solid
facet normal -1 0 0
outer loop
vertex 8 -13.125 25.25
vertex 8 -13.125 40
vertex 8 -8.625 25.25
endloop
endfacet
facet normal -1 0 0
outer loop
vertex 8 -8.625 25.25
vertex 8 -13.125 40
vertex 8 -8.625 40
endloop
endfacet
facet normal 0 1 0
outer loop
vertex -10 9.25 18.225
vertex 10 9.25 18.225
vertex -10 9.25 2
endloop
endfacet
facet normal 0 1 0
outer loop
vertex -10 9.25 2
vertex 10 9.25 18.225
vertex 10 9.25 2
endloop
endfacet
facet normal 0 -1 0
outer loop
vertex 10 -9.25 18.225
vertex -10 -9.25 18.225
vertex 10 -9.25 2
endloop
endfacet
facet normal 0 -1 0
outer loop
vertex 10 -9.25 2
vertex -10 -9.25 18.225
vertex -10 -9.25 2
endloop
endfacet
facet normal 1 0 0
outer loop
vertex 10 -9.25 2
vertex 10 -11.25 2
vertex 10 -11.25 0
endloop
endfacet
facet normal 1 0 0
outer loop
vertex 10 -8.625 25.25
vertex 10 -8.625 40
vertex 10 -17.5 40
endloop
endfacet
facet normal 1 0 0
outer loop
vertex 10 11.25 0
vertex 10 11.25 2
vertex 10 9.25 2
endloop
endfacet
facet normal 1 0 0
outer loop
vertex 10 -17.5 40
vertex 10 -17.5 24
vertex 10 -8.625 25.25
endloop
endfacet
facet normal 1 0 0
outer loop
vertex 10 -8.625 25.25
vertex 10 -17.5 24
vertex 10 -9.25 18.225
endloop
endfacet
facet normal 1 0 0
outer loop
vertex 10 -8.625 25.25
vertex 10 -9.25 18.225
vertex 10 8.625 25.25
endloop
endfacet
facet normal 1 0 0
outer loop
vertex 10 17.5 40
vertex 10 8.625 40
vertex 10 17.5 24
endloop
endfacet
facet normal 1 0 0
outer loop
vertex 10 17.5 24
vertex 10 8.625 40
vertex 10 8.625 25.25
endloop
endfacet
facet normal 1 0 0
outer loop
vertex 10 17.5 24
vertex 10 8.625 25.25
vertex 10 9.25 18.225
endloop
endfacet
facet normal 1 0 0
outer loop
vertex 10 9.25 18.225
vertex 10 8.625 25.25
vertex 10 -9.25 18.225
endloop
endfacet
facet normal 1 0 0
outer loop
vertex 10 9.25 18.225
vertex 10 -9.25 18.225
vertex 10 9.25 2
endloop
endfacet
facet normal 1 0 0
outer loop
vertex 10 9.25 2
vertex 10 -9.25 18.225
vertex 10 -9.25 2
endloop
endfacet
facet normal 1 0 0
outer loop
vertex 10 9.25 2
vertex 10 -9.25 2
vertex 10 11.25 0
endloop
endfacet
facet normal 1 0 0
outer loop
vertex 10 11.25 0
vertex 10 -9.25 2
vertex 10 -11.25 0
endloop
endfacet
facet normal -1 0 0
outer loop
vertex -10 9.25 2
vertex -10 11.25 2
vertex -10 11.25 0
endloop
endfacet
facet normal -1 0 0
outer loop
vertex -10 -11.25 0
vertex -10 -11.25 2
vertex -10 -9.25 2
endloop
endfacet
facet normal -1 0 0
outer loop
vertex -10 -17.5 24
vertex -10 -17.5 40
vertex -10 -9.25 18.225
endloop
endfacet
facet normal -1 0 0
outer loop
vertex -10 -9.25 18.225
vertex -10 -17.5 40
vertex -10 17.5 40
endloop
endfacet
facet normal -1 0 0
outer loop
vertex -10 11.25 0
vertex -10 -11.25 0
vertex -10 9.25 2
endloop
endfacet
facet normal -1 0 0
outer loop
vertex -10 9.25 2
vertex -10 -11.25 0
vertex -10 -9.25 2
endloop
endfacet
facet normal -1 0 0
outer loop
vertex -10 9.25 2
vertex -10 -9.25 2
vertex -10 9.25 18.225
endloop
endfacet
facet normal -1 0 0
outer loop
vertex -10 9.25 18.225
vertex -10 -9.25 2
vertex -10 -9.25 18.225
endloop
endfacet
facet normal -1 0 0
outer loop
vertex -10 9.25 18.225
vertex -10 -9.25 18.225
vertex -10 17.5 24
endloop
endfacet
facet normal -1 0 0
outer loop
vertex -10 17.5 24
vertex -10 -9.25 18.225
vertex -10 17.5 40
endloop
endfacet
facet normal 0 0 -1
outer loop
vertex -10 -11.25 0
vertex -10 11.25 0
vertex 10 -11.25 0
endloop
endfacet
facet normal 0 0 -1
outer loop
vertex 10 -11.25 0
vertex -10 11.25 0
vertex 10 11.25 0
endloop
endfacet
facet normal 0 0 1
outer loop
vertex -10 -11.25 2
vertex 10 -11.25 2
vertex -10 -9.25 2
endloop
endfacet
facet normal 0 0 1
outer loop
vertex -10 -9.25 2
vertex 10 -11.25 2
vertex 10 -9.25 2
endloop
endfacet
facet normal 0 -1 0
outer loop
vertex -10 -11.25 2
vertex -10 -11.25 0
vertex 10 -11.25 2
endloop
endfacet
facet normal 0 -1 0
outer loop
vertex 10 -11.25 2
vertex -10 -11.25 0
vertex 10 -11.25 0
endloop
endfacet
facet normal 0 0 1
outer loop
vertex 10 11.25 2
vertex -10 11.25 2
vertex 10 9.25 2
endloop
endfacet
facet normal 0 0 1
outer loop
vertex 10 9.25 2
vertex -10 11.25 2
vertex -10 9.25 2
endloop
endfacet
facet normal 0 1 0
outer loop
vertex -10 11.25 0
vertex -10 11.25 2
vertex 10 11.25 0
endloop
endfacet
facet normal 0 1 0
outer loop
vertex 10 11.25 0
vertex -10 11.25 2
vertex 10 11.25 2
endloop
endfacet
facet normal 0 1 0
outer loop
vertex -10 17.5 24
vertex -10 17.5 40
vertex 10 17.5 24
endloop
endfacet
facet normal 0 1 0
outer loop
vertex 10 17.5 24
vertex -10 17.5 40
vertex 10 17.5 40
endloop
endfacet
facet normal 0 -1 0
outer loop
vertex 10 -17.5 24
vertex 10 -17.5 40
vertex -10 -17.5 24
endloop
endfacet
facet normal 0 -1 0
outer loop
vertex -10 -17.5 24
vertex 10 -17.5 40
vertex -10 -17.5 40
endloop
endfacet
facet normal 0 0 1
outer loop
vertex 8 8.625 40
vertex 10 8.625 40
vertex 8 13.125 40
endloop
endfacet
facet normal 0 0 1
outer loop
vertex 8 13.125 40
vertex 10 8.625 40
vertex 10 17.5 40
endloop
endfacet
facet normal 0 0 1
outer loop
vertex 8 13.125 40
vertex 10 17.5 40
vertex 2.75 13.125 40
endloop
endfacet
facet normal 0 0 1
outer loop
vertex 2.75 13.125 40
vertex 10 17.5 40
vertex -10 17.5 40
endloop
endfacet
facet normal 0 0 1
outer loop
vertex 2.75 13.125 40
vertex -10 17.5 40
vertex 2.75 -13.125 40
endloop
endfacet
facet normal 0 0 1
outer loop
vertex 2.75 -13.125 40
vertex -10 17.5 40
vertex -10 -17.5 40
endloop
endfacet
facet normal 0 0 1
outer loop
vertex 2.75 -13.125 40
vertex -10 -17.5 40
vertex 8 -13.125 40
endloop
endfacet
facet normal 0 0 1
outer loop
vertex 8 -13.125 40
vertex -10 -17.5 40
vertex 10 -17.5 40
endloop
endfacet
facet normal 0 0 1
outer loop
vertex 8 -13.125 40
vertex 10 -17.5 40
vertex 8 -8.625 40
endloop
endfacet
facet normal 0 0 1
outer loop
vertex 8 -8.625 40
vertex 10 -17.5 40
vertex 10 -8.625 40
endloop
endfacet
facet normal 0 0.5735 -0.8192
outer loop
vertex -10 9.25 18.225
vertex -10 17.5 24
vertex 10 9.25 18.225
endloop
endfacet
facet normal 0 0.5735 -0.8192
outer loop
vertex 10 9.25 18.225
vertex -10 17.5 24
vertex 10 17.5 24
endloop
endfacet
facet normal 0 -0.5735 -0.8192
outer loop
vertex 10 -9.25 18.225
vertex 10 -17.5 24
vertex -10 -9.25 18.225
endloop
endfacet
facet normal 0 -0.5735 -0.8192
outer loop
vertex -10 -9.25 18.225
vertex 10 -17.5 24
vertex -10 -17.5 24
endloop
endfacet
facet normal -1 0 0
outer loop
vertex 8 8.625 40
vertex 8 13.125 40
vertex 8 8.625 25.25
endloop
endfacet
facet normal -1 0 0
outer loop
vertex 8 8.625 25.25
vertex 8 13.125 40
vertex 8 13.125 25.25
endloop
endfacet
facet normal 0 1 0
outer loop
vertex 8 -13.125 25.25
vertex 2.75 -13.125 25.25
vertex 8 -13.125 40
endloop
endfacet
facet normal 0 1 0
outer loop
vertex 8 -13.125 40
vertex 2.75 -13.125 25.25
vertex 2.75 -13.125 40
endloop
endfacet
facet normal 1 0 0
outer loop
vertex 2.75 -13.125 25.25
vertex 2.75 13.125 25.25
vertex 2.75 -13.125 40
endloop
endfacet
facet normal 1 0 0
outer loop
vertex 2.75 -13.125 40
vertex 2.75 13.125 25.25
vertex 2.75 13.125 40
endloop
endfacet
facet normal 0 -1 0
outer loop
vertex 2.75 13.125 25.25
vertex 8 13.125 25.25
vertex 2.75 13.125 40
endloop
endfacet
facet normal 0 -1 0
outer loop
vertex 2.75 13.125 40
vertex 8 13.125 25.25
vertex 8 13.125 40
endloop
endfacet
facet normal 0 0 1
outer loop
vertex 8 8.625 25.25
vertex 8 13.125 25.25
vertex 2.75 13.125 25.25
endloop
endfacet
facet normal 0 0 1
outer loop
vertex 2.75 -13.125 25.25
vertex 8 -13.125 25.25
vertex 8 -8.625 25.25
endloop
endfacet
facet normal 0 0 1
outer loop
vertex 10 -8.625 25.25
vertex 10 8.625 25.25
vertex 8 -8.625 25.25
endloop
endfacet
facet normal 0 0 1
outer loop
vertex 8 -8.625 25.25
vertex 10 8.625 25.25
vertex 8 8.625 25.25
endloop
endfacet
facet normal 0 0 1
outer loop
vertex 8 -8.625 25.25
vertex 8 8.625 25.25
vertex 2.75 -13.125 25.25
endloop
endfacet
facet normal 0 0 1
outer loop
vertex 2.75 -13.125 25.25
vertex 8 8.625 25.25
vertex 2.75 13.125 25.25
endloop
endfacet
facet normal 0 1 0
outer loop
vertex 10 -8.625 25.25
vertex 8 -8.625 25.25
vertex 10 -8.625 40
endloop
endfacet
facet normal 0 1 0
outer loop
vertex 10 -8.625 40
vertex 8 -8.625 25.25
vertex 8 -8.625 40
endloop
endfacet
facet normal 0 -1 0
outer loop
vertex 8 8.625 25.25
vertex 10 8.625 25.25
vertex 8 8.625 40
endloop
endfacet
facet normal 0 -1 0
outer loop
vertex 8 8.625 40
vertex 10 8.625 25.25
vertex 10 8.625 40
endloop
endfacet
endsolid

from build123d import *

# Parameters (mm, degrees)
IZIM1_W                     = 20
IZIM1_H                     = 18.5
Y_KSEKLIK_EKSTR_ZYON1_DEPTH = 17
IZIM2_W                     = 20
IZIM2_H                     = 2
Y_KSEKLIK_EKSTR_ZYON2_DEPTH = 2
IZIM3_W                     = 20
IZIM3_H                     = 2
Y_KSEKLIK_EKSTR_ZYON3_DEPTH = 2
IZIM4_W                     = 20
IZIM4_H                     = 35
Y_KSEKLIK_EKSTR_ZYON4_DEPTH = 23
PAH1_SIZE                   = 7
PAH1_SIZE_2                 = 10
PAH2_SIZE                   = 7
PAH2_SIZE_2                 = 10
IZIM5_W                     = 5.25
IZIM5_H                     = 26.25
KES_EKSTR_ZYON2_DEPTH       = 14.75
IZIM6_W                     = 2
IZIM6_H                     = 17.25
KES_EKSTR_ZYON3_DEPTH       = 14.75


with BuildPart() as part:
    # Çizim1 → Yükseklik-Ekstrüzyon1 (new body)
    with BuildSketch(Plane.XY):
        Rectangle(IZIM1_W, IZIM1_H)
    extrude(amount=Y_KSEKLIK_EKSTR_ZYON1_DEPTH)

    # Çizim2 → Yükseklik-Ekstrüzyon2 (add)
    with BuildSketch(Plane.XZ.offset(9.25)):
        with Locations((0, 1)):
            Rectangle(IZIM2_W, IZIM2_H)
    extrude(amount=Y_KSEKLIK_EKSTR_ZYON2_DEPTH)

    # Çizim3 → Yükseklik-Ekstrüzyon3 (add)
    with BuildSketch(Plane(origin=(0, 9.25, 0), x_dir=(1, 0, 0), z_dir=(0, 1, 0))):
        with Locations((0, -1)):
            Rectangle(IZIM3_W, IZIM3_H)
    extrude(amount=Y_KSEKLIK_EKSTR_ZYON3_DEPTH)

    # Çizim4 → Yükseklik-Ekstrüzyon4 (add)
    with BuildSketch(Plane.XY.offset(17)):
        Rectangle(IZIM4_W, IZIM4_H)
    extrude(amount=Y_KSEKLIK_EKSTR_ZYON4_DEPTH)

    # Pah1
    # the kernel refuses this chamfer: 10, 7 mm, written as the material it takes off along each edge
    with BuildSketch(Plane(origin=(-35.825599626, 17.5, 17), x_dir=(0, 0.045281396304095924, 0.9989742715149131), z_dir=(1, 0, 0))) as pah1_piece_1_section:
        Polygon((PAH1_SIZE * 0.998974271515, PAH1_SIZE * 0.0452813963041), (-PAH1_SIZE_2 * 0.0452813963041, PAH1_SIZE_2 * 0.998974271515), (0, 0), align=None)
    pah1_piece_1 = extrude(amount=71.651199251, mode=Mode.PRIVATE)
    pah1_piece_1 = split(pah1_piece_1, bisect_by=Plane(origin=(0, 9.25, 19.372622849), z_dir=(0, 1, 0)), keep=Keep.TOP, mode=Mode.PRIVATE)
    add(pah1_piece_1, mode=Mode.SUBTRACT)

    # Pah2
    # the kernel refuses this chamfer: 10, 7 mm, written as the material it takes off along each edge
    with BuildSketch(Plane(origin=(35.825599626, -17.5, 17), x_dir=(0, -0.045281396304095924, 0.9989742715149131), z_dir=(-1, 0, 0))) as pah2_piece_1_section:
        Polygon((PAH2_SIZE * 0.998974271515, PAH2_SIZE * 0.0452813963041), (-PAH2_SIZE_2 * 0.0452813963041, PAH2_SIZE_2 * 0.998974271515), (0, 0), align=None)
    pah2_piece_1 = extrude(amount=71.651199251, mode=Mode.PRIVATE)
    pah2_piece_1 = split(pah2_piece_1, bisect_by=Plane(origin=(0, -9.25, 19.372622849), z_dir=(0, -1, 0)), keep=Keep.TOP, mode=Mode.PRIVATE)
    add(pah2_piece_1, mode=Mode.SUBTRACT)

    # Çizim5 → Kes-Ekstrüzyon2 (cut)
    with BuildSketch(Plane.XY.offset(40)):
        with Locations((5.375, 0)):
            Rectangle(IZIM5_W, IZIM5_H)
    extrude(amount=-KES_EKSTR_ZYON2_DEPTH, mode=Mode.SUBTRACT)

    # Çizim6 → Kes-Ekstrüzyon3 (cut)
    with BuildSketch(Plane.XY.offset(40)):
        with Locations((9, 0)):
            Rectangle(IZIM6_W, IZIM6_H)
    extrude(amount=-KES_EKSTR_ZYON3_DEPTH, mode=Mode.SUBTRACT)


solid = part.part
